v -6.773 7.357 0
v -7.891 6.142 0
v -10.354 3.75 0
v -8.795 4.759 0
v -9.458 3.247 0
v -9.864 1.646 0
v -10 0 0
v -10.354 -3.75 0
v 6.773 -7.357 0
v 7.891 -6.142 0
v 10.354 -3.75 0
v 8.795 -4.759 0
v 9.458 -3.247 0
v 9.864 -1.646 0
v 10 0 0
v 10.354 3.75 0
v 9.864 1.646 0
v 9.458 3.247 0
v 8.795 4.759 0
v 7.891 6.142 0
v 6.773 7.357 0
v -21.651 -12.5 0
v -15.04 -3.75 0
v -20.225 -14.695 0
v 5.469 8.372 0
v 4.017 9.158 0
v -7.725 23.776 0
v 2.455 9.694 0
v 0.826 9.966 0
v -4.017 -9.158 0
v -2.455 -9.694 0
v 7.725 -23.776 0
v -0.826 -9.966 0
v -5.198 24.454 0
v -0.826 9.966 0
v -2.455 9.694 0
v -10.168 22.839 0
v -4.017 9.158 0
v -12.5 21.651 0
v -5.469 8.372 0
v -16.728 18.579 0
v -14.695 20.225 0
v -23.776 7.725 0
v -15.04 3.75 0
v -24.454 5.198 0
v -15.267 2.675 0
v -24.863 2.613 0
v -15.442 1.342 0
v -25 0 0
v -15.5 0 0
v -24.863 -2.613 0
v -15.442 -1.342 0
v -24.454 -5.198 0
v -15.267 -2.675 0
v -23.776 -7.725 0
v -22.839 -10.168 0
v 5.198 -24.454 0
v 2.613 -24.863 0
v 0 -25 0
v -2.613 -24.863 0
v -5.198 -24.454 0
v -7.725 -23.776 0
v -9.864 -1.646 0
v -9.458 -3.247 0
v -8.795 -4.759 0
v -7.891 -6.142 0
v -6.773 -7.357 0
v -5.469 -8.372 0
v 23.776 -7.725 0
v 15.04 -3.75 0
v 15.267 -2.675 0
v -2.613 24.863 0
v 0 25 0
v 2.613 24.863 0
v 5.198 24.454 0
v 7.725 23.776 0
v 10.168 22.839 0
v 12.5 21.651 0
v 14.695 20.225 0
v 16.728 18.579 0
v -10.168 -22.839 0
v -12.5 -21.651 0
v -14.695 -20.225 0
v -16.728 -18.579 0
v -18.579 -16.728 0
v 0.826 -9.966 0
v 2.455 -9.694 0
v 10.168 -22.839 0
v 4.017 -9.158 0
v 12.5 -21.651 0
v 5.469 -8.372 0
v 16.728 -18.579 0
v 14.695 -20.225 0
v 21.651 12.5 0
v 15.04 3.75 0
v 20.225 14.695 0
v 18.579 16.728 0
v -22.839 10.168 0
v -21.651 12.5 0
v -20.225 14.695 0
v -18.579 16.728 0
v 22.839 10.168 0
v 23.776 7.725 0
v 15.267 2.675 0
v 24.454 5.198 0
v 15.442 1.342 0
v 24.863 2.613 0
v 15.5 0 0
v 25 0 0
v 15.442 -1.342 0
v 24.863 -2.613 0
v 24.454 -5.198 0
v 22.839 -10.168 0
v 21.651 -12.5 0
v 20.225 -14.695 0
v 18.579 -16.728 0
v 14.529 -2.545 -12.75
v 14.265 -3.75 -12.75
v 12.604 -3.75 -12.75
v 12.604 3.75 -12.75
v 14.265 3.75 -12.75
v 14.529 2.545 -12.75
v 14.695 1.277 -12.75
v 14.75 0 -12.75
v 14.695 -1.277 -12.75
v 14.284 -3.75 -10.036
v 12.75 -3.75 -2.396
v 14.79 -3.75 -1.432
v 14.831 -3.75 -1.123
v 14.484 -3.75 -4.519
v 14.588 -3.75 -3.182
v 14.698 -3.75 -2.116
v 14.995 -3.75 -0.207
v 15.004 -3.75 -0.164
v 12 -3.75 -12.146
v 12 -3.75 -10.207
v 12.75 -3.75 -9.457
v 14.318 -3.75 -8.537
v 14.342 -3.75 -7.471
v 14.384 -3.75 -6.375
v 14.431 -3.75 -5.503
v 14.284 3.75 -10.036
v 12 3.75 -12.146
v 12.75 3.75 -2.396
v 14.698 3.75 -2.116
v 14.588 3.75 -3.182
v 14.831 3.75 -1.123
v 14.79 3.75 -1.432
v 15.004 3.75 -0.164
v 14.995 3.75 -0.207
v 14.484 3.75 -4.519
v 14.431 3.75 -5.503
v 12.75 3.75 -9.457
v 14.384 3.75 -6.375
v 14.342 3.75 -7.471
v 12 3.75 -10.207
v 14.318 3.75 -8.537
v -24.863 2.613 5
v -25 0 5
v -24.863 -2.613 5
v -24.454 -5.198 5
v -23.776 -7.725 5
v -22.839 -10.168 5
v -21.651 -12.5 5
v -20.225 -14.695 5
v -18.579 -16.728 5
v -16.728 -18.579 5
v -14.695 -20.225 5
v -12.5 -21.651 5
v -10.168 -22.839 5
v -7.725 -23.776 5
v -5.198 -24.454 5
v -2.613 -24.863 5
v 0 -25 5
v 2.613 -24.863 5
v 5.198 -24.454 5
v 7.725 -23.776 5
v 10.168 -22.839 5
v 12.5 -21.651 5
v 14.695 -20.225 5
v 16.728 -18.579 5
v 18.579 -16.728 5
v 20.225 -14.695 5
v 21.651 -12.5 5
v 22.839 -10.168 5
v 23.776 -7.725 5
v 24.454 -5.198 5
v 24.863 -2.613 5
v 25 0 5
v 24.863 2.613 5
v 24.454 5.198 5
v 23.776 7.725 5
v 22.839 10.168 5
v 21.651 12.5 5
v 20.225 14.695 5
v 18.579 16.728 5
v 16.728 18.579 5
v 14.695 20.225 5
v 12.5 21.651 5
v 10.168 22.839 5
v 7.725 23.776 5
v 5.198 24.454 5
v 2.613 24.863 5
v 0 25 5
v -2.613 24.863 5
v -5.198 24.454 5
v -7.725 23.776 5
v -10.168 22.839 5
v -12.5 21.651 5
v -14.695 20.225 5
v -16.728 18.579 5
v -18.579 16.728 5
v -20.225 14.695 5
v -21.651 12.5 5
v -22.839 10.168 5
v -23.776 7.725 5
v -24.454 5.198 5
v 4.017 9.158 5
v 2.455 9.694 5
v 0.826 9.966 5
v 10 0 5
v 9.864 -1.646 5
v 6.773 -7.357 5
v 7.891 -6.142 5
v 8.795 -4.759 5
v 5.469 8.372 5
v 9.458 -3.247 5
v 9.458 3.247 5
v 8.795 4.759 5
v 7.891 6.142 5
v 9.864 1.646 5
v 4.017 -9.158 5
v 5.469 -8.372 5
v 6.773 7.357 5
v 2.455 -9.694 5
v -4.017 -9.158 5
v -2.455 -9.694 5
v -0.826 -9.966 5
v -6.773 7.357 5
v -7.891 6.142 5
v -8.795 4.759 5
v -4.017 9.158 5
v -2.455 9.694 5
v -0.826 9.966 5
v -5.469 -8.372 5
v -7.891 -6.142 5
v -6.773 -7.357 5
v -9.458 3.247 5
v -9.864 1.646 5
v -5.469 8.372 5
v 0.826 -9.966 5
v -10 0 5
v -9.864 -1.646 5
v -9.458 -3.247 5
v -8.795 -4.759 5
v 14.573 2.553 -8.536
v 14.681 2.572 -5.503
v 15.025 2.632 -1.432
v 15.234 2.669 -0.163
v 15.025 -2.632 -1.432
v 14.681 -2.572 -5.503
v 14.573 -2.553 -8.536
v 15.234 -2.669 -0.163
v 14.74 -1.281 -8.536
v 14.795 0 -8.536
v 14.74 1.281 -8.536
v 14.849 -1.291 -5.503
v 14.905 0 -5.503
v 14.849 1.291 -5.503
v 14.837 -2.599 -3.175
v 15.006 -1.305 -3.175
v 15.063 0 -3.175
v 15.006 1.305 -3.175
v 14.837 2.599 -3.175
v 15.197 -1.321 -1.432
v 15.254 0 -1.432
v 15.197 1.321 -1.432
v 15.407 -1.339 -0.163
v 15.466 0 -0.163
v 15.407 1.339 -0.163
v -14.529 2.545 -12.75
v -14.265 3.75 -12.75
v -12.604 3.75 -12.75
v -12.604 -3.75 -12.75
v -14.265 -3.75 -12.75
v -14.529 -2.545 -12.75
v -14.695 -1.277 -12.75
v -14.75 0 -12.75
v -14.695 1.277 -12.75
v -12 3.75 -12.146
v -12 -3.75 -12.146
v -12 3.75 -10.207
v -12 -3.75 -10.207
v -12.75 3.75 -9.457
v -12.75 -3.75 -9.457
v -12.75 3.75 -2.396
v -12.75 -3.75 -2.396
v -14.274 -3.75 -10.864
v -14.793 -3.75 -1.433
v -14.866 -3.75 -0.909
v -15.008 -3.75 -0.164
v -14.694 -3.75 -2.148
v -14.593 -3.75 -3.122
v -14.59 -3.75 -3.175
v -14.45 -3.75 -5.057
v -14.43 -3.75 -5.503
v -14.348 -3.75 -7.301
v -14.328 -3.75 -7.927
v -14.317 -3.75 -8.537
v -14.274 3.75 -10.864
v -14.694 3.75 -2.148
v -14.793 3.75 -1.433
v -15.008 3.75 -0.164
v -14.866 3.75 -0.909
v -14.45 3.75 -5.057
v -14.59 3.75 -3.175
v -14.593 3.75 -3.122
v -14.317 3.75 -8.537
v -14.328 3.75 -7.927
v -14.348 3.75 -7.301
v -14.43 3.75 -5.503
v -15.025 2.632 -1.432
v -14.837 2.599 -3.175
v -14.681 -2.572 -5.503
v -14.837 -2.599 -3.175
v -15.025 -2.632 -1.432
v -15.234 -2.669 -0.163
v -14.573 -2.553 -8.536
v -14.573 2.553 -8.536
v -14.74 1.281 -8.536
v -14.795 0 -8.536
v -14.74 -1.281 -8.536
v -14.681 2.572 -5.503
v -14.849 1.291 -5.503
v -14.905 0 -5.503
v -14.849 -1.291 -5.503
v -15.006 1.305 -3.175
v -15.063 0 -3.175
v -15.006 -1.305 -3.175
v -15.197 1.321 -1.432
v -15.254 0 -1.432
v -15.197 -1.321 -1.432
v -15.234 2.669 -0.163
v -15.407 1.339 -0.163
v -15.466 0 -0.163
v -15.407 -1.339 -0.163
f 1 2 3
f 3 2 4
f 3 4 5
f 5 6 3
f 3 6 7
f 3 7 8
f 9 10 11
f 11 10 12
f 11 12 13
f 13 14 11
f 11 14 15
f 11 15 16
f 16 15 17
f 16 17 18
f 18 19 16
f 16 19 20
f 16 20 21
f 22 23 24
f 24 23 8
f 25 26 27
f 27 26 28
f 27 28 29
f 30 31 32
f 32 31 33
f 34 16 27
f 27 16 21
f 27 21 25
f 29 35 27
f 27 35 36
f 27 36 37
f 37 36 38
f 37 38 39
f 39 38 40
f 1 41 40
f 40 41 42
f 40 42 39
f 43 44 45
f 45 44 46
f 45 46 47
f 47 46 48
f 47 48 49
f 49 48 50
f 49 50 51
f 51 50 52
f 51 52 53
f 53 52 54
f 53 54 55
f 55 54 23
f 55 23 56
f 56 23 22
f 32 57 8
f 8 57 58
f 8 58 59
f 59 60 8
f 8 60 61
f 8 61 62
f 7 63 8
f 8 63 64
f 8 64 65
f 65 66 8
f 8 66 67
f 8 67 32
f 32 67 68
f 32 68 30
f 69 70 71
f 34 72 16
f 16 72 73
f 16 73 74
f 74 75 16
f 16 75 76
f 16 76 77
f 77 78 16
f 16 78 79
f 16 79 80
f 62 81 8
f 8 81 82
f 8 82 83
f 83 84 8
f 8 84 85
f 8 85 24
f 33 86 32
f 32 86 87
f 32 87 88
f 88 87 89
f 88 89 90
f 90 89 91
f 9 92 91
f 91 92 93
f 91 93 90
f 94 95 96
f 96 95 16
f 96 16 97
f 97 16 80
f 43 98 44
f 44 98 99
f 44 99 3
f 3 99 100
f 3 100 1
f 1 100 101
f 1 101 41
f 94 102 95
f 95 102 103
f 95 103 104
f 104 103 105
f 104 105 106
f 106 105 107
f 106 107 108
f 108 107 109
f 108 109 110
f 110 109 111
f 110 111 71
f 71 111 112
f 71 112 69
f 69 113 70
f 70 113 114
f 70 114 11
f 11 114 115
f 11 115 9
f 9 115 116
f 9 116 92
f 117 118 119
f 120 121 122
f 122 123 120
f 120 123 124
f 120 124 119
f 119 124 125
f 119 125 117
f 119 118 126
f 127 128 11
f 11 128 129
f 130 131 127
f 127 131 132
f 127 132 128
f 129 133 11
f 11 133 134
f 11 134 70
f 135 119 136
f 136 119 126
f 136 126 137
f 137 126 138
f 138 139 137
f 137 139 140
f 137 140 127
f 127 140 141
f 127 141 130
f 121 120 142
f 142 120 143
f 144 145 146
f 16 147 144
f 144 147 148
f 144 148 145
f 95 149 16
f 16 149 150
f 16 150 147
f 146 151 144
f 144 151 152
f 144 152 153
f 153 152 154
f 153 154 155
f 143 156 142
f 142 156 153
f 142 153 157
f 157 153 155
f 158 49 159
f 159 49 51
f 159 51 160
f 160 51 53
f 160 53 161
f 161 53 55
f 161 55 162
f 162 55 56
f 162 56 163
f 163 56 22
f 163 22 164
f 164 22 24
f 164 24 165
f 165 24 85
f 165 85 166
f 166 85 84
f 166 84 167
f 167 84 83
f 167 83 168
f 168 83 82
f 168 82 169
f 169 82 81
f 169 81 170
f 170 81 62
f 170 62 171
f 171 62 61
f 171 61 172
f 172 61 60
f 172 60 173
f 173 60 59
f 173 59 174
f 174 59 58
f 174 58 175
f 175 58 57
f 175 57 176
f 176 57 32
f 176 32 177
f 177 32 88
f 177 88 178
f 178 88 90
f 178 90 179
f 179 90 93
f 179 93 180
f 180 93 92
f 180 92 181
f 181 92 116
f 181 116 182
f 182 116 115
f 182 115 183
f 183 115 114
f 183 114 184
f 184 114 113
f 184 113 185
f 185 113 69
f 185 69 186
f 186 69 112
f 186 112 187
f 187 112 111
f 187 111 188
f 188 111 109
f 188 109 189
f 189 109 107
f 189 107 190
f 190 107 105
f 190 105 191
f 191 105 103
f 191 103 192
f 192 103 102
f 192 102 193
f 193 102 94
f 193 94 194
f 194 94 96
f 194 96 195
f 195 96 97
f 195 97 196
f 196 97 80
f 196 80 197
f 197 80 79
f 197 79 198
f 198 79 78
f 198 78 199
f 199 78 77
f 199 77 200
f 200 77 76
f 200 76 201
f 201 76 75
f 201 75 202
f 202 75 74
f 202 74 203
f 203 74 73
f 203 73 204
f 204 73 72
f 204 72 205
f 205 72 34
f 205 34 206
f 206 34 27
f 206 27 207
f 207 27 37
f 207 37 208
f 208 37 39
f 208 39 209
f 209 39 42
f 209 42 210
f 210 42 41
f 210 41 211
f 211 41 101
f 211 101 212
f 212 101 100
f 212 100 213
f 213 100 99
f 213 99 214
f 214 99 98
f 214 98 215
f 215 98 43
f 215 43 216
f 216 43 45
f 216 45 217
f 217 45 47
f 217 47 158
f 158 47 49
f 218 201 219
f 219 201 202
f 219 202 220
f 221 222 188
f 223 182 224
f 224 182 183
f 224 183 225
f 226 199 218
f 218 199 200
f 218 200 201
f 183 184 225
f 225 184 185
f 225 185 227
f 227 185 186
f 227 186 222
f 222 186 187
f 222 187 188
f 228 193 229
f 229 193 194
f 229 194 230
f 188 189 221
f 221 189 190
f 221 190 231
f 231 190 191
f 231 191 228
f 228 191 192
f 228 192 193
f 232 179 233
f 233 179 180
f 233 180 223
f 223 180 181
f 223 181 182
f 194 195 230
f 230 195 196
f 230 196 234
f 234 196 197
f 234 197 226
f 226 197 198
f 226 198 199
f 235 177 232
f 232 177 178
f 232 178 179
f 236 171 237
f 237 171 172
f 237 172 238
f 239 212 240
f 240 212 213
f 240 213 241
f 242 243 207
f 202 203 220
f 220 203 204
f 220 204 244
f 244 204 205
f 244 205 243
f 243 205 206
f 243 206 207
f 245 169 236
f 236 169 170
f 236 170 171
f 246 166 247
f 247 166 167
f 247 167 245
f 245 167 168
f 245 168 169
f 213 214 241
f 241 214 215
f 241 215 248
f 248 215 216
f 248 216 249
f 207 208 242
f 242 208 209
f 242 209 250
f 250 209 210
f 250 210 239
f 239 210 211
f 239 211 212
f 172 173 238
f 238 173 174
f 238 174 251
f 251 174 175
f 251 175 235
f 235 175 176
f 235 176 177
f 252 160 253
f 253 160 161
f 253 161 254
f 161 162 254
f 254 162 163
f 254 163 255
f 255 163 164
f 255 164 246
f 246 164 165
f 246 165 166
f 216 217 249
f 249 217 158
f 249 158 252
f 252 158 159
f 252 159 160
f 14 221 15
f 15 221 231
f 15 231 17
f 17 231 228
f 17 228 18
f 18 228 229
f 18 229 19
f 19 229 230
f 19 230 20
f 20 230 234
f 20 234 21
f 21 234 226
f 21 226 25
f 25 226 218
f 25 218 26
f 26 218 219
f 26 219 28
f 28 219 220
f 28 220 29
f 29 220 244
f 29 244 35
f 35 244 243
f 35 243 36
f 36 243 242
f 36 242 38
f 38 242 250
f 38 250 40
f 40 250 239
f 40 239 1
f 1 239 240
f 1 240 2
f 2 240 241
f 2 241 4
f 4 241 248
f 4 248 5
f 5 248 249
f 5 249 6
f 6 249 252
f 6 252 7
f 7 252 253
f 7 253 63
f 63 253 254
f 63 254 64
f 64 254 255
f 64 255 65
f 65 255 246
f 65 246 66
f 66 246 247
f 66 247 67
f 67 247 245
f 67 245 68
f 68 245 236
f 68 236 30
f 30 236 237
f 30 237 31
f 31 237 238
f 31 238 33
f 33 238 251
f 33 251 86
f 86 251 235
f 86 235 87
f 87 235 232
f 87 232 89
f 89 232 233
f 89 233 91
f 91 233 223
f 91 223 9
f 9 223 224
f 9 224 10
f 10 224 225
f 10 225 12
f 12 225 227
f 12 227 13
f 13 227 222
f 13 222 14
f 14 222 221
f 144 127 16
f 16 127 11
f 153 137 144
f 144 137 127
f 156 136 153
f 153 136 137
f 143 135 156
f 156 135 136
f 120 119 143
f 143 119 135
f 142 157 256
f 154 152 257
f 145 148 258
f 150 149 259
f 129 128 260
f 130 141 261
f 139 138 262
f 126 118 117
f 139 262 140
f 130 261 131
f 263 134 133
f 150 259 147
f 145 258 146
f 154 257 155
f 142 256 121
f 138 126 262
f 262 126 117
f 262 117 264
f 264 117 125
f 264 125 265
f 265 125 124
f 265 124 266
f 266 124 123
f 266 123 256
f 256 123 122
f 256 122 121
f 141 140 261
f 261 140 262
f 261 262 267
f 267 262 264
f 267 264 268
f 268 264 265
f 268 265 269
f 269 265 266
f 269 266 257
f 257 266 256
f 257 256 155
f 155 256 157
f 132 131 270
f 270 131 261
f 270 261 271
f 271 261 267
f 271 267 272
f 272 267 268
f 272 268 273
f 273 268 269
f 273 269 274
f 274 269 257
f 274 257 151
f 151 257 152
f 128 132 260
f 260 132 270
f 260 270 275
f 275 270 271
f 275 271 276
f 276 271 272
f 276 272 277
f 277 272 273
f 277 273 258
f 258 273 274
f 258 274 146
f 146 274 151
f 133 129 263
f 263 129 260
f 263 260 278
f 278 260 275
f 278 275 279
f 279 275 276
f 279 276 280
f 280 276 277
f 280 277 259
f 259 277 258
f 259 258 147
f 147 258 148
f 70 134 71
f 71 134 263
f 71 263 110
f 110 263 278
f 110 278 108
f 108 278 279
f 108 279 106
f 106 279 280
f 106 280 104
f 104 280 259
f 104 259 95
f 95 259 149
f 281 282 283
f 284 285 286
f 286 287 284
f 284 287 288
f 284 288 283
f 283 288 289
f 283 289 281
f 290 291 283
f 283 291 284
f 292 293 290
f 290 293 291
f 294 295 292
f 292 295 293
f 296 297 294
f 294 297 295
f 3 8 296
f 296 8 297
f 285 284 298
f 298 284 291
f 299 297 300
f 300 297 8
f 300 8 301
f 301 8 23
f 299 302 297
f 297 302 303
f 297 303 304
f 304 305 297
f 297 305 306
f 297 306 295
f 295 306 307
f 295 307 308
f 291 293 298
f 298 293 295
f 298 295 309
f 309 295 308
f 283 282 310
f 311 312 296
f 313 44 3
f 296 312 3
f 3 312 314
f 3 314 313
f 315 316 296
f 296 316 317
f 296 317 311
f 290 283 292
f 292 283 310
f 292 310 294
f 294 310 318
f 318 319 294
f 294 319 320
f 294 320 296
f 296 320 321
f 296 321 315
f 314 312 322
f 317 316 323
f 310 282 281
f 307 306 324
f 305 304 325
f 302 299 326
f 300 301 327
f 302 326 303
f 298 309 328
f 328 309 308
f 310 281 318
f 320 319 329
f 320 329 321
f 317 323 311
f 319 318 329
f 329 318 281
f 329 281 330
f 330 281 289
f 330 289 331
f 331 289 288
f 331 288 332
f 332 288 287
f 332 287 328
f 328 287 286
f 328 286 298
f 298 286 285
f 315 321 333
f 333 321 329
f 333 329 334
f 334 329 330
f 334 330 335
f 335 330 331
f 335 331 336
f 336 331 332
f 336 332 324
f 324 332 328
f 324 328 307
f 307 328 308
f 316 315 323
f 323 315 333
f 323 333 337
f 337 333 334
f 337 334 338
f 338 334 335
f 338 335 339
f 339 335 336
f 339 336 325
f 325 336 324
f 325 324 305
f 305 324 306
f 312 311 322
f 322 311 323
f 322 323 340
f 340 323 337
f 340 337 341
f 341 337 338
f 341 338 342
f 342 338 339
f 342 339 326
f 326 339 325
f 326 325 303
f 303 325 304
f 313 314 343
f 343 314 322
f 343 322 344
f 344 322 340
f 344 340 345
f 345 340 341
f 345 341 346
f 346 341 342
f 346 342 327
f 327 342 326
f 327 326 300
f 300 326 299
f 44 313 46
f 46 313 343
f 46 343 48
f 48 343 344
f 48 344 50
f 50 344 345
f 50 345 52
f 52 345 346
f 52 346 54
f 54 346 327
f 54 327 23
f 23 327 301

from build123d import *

# Parameters (mm, degrees)
SKETCH4_R           = 25
BOSS_EXTRUDE2_DEPTH = 5
SKETCH5_R           = 10
CUT_EXTRUDE1_DEPTH  = 36.707142143
BOSS_EXTRUDE3_DEPTH = 3.75
SKETCH1_R           = 25
CUT_EXTRUDE2_DEPTH  = 38.584072424


with BuildPart() as part:
    # Sketch4 → Boss-Extrude2 (new body)
    with BuildSketch(Plane.XY):
        Circle(SKETCH4_R)
    extrude(amount=BOSS_EXTRUDE2_DEPTH)

    # Sketch5 → Cut-Extrude1 (cut, through all)
    with BuildSketch(Plane.XY.offset(5)):
        Circle(SKETCH5_R)
    extrude(amount=-CUT_EXTRUDE1_DEPTH, mode=Mode.SUBTRACT)

    # Sketch6 → Boss-Extrude3 (add, symmetric)
    with BuildSketch(Plane(origin=(0, 0, 0), x_dir=(1, 0, 0), z_dir=(0, 1, 0))):
        Polygon((15.5, 12.75), (12.603553391, 12.75), (12, 12.146446609), (12, 10.207106781), (12.75, 9.457106781), (12.75, 2.396446609), (10.353553391, 0), (15.5, 0), align=None)
    boss_extrude3 = extrude(amount=BOSS_EXTRUDE3_DEPTH, both=True)

    # Sketch1 → Cut-Extrude2 (cut, through all)
    with BuildSketch(Plane.XY):
        Circle(SKETCH1_R)
        with BuildLine():
            ThreePointArc((-1, 15.467708298), (10.600707524, 11.308182878), (15.5, 0))
            ThreePointArc((15.5, 0), (10.600707524, -11.308182878), (-1, -15.467708298))
            ThreePointArc((-1, -15.467708298), (-17.5, 0), (-1, 15.467708298))
        make_face(mode=Mode.SUBTRACT)
    cut_extrude2 = extrude(amount=-CUT_EXTRUDE2_DEPTH, mode=Mode.SUBTRACT)

    # Sketch6<4> → Cut-Revolve1 (revolve, cut)
    with BuildSketch(Plane(origin=(0, 0, 0), x_dir=(1, 0, 0), z_dir=(0, 1, 0))):
        with BuildLine():
            add(Edge.make_bspline(
                [(14.75, 12.75), (14.75, 3.446446626), (15.5, 0)],
                knots=[0, 0, 0, 1, 1, 1], degree=2))
            Line((15.5, 0), (15.5, 12.75))
            Line((15.5, 12.75), (14.75, 12.75))
        make_face()
    cut_revolve1 = revolve(axis=Axis((0, 0, 0), (0, 0, -1)), mode=Mode.SUBTRACT)

    # Mirror1: Boss-Extrude3, Cut-Extrude2, Cut-Revolve1 across plane
    add(boss_extrude3.mirror(Plane(origin=(0, 0, 0), x_dir=(0, 0, 1), z_dir=(1, 0, 0))))
    add(cut_extrude2.mirror(Plane(origin=(0, 0, 0), x_dir=(0, 0, 1), z_dir=(1, 0, 0))), mode=Mode.SUBTRACT)
    add(cut_revolve1.mirror(Plane(origin=(0, 0, 0), x_dir=(0, 0, 1), z_dir=(1, 0, 0))), mode=Mode.SUBTRACT)


solid = part.part
